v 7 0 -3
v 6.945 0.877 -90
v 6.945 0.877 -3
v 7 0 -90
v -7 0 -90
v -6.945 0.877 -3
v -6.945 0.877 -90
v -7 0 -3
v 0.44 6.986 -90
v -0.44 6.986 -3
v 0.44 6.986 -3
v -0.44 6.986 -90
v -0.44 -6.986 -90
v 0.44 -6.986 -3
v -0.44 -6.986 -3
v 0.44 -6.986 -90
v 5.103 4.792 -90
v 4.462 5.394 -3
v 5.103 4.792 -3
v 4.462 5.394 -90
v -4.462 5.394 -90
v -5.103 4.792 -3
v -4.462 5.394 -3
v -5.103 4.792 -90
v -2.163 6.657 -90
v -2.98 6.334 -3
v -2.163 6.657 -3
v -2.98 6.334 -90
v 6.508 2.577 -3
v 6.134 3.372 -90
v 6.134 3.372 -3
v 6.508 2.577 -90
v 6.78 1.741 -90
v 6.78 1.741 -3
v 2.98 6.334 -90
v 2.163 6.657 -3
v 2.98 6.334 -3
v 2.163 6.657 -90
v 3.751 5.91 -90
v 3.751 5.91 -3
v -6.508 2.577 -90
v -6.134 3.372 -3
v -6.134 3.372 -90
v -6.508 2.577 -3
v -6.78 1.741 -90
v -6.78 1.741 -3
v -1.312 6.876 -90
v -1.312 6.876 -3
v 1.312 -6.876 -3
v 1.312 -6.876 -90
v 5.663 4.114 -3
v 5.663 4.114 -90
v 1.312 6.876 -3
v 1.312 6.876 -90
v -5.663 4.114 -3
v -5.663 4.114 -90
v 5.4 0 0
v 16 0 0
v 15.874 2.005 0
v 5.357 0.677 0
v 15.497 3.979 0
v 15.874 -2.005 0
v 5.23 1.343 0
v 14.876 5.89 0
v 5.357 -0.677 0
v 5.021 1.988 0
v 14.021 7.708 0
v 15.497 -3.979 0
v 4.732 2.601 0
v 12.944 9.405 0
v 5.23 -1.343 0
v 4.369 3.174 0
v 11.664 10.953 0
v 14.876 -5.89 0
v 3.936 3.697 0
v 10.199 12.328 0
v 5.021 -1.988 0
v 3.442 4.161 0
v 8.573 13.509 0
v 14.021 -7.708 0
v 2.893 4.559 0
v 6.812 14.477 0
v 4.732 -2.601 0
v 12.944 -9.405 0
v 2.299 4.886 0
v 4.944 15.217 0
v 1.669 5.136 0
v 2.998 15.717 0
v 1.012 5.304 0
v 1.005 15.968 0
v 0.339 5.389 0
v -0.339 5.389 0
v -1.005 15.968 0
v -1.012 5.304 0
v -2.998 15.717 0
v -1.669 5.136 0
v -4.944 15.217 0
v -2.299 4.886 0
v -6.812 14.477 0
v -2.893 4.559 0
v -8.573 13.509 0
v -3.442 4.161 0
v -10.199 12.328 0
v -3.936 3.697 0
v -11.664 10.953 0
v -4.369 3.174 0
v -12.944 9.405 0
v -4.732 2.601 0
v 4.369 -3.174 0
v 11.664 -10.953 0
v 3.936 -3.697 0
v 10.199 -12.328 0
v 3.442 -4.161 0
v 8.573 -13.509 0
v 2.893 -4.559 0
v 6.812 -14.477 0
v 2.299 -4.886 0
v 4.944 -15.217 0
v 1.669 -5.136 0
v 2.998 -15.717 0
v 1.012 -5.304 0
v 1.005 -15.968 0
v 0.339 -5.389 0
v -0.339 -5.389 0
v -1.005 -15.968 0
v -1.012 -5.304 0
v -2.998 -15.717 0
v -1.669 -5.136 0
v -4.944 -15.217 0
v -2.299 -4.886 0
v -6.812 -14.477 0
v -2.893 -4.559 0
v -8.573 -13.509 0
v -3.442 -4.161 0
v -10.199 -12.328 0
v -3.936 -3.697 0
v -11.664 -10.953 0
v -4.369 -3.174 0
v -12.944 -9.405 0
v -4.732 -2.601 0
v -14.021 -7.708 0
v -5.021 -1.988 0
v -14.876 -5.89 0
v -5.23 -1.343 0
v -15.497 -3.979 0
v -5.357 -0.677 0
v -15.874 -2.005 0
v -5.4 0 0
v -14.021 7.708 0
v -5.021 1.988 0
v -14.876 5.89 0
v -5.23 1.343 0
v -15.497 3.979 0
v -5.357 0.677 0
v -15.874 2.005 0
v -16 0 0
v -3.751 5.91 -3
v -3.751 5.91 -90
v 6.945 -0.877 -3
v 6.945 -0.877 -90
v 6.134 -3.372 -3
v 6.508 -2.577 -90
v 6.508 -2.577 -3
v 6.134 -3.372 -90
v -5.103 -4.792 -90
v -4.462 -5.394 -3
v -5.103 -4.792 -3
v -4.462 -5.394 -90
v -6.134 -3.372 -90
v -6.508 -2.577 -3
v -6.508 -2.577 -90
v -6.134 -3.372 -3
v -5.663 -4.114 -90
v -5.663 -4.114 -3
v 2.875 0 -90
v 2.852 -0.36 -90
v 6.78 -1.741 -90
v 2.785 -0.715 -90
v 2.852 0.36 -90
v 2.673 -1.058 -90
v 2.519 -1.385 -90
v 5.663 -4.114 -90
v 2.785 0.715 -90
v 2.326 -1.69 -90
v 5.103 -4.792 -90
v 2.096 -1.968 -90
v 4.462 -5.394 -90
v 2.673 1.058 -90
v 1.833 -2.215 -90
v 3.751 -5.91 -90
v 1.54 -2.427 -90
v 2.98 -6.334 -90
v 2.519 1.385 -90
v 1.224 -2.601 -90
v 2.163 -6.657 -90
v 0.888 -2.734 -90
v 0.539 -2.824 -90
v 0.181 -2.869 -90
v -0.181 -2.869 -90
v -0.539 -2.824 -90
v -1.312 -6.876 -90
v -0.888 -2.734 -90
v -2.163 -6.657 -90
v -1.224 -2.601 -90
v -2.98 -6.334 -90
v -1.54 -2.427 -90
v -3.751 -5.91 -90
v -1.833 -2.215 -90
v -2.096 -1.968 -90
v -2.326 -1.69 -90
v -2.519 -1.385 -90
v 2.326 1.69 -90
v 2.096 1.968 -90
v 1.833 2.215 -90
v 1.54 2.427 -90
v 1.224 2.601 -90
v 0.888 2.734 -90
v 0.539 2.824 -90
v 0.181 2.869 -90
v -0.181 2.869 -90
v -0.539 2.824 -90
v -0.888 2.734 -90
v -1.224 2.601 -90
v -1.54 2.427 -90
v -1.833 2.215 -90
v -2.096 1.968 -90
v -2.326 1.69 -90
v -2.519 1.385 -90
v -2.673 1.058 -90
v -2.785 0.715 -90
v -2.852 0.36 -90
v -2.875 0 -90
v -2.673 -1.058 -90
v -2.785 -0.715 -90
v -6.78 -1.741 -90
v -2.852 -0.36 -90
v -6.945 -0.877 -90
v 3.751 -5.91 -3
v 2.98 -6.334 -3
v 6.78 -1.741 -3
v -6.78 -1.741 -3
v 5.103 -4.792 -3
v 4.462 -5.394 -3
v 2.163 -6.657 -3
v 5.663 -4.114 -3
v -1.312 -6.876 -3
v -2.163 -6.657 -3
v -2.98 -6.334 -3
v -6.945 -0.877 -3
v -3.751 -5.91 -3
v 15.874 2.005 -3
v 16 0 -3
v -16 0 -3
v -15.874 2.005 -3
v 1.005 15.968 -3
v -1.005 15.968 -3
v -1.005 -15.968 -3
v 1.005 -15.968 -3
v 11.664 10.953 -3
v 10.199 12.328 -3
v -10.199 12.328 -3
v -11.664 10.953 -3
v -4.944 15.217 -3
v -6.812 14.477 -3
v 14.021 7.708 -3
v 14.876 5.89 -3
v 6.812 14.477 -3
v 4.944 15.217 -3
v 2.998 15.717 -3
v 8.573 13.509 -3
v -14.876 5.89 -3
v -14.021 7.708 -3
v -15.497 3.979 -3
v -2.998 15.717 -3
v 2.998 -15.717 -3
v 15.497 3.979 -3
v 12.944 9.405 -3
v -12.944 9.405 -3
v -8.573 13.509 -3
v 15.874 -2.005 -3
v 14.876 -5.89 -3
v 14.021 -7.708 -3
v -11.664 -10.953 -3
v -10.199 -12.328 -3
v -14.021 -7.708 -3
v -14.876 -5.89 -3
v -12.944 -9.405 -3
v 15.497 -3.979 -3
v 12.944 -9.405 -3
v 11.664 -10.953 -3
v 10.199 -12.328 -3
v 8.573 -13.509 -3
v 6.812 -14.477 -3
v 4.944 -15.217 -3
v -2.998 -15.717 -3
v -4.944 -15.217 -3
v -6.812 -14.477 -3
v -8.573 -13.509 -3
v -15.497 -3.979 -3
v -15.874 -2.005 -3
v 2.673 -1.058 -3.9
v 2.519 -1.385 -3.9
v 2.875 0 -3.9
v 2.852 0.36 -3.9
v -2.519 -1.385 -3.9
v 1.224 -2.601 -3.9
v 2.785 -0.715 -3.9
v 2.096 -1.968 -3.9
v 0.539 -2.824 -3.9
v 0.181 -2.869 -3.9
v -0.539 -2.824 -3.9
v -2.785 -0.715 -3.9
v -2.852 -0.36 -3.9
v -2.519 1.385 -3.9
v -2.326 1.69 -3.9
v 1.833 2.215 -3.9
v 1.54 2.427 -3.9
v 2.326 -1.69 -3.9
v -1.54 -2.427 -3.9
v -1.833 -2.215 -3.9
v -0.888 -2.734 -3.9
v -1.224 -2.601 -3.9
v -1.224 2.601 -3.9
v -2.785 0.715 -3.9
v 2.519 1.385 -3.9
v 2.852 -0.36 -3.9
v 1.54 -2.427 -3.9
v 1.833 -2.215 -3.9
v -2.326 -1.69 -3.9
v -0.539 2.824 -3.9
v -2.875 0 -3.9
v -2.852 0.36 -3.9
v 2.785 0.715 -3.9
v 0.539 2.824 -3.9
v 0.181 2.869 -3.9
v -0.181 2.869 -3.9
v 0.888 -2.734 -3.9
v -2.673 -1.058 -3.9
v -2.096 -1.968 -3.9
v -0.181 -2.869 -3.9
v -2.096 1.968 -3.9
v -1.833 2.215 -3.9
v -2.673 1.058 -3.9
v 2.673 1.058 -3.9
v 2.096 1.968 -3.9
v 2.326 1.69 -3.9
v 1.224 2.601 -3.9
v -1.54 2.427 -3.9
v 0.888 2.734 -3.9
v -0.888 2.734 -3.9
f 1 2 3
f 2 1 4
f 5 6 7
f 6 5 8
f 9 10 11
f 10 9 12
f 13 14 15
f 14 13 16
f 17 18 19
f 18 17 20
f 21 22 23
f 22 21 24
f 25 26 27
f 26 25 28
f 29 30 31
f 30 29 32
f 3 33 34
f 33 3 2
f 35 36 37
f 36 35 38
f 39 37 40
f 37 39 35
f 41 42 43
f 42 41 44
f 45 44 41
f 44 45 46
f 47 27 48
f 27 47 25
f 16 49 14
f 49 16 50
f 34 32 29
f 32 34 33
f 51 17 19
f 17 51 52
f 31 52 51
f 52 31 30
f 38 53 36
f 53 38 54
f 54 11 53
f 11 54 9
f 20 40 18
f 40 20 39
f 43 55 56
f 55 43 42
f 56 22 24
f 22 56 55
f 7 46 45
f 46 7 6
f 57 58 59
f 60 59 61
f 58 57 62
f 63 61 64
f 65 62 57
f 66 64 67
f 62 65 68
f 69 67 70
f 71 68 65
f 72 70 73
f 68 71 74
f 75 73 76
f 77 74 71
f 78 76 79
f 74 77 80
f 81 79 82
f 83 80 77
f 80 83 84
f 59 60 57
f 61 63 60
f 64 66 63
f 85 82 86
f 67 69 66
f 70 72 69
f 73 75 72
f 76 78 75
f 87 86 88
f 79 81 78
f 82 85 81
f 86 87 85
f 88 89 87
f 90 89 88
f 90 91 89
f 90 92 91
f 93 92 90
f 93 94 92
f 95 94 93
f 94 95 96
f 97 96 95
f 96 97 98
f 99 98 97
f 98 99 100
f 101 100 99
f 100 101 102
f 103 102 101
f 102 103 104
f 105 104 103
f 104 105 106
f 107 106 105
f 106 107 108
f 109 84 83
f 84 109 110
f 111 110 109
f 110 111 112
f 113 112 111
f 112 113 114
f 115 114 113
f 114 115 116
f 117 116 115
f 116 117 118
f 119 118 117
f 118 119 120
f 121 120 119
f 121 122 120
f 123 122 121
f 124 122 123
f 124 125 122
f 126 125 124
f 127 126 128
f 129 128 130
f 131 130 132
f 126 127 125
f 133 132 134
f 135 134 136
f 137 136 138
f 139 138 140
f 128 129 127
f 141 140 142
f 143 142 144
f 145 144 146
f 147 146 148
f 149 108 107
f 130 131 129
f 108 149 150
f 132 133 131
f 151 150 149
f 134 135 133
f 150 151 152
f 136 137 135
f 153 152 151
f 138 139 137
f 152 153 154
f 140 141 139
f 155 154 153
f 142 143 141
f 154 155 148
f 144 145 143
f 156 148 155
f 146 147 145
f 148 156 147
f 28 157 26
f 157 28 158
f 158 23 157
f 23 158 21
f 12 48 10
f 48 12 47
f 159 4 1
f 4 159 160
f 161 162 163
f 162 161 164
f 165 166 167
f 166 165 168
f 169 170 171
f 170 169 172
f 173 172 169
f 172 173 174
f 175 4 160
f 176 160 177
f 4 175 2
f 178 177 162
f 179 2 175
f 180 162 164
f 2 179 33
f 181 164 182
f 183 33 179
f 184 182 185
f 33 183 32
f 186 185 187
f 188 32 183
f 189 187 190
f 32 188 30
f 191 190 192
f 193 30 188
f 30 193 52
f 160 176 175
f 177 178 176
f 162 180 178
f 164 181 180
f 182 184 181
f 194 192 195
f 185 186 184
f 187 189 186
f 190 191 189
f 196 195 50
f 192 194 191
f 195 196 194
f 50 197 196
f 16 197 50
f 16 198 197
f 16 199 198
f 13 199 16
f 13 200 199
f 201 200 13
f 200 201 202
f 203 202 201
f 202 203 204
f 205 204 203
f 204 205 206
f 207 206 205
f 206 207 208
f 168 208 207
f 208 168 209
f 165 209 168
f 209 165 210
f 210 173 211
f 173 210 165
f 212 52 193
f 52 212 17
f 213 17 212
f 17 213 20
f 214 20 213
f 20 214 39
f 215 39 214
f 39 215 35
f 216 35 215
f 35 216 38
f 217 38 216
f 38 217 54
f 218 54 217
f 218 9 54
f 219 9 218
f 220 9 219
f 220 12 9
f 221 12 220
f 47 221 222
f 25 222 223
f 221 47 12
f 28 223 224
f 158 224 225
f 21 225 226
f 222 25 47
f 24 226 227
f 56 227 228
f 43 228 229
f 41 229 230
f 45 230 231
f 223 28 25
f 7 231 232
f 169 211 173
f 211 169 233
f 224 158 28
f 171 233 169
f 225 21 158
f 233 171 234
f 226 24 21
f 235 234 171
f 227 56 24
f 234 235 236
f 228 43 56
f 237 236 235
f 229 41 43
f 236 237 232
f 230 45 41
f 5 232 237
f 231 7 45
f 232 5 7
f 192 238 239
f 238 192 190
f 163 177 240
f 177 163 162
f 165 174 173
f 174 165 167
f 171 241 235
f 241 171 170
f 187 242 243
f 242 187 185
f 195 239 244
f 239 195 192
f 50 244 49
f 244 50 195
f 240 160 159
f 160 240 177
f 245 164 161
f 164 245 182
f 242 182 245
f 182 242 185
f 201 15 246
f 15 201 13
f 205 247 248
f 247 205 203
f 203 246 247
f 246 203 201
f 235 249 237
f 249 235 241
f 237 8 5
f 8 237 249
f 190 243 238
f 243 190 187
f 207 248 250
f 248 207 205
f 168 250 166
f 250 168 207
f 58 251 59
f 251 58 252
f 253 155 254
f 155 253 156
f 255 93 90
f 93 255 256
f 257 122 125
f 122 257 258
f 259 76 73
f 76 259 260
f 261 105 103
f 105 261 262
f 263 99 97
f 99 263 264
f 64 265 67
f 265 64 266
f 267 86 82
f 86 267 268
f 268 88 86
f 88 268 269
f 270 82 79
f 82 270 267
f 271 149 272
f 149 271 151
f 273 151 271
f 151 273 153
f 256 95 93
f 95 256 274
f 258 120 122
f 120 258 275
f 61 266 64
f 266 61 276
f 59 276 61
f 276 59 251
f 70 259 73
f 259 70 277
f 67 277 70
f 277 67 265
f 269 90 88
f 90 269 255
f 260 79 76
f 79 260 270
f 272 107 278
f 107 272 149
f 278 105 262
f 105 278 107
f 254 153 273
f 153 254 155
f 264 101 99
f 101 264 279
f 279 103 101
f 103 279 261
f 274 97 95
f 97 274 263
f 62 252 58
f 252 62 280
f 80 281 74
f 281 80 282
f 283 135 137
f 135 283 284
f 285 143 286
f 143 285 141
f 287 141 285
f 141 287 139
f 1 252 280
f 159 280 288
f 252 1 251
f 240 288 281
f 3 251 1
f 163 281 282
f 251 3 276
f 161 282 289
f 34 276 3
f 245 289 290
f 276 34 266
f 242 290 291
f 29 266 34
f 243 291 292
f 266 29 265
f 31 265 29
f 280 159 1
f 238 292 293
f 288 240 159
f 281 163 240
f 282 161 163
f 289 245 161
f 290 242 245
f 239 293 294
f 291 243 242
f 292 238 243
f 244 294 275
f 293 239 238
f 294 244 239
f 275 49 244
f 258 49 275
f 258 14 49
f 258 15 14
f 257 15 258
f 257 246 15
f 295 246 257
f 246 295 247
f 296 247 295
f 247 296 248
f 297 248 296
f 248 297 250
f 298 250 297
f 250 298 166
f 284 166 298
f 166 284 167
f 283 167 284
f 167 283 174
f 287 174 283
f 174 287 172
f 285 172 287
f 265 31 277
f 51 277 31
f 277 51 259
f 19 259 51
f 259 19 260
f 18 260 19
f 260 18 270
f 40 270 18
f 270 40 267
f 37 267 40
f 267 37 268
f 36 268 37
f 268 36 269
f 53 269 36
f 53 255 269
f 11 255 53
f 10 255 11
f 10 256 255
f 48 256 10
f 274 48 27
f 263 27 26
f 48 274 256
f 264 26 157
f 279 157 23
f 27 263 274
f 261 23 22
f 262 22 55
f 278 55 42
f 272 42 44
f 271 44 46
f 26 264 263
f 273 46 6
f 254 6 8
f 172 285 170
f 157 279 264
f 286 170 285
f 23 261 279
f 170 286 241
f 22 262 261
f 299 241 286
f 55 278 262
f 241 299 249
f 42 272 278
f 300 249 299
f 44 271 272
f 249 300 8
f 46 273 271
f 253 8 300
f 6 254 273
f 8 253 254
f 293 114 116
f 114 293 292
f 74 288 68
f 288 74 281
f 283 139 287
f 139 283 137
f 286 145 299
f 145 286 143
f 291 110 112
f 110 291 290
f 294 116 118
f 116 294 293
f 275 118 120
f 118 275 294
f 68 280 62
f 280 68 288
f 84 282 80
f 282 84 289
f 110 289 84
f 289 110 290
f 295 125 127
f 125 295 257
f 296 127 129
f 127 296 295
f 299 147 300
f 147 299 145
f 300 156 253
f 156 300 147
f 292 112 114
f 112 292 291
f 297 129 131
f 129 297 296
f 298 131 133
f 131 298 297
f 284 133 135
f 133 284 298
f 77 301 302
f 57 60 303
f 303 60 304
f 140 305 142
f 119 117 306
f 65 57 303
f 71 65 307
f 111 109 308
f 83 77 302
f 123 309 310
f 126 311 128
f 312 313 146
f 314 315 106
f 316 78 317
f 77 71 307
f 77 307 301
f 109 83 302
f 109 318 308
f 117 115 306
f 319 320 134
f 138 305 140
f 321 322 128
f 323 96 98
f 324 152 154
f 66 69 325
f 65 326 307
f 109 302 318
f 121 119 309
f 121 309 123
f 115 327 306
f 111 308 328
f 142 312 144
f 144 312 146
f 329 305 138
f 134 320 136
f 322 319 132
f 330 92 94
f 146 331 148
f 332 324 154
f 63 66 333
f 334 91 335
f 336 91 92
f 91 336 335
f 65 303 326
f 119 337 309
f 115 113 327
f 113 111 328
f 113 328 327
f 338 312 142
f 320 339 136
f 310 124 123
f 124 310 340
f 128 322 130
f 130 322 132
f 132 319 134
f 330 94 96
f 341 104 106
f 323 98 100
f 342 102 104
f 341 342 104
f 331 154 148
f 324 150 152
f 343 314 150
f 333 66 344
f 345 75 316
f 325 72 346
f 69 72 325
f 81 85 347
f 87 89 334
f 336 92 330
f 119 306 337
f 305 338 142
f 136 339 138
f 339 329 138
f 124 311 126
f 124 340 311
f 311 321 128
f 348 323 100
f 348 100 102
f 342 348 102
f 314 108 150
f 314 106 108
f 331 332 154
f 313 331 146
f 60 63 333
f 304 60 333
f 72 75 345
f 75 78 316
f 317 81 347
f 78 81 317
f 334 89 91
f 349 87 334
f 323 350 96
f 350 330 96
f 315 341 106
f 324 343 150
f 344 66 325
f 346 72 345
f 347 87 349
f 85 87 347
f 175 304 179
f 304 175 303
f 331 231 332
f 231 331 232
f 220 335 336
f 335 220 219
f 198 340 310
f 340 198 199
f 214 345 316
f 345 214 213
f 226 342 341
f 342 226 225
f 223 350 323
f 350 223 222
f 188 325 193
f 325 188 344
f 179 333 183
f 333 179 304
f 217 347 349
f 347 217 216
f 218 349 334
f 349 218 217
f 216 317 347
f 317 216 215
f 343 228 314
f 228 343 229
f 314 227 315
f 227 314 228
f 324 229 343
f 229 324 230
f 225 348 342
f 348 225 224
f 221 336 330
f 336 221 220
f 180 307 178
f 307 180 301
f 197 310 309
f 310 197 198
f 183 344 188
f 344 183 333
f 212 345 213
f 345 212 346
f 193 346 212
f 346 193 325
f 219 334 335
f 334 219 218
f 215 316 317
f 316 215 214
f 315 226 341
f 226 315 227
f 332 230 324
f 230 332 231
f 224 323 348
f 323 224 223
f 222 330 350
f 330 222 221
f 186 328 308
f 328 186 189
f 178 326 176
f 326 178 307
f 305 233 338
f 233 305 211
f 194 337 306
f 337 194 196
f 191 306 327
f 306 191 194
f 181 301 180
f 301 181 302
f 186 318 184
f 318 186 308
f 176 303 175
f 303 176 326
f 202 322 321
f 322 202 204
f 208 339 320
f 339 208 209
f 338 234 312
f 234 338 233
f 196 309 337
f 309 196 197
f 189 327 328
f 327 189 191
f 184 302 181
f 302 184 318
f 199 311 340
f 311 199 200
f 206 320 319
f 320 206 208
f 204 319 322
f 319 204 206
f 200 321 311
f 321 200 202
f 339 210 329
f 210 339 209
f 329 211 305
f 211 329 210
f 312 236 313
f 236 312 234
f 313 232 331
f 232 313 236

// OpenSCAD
$fn = 50;


difference() {
	union() {
		translate(v = [0, 0, -90.0000000000]) {
			cylinder(h = 90, r = 7.0000000000);
		}
		translate(v = [0, 0, -3.0000000000]) {
			cylinder(h = 3, r = 16.0000000000);
		}
	}
	union() {
		translate(v = [0, 0, 0]) {
			rotate(a = [0, 0, 0]) {
				difference() {
					union() {
						#translate(v = [0, 0, -90.0000000000]) {
							cylinder(h = 90, r = 2.6000000000);
						}
						#translate(v = [0, 0, -3.9000000000]) {
							cylinder(h = 3.9000000000, r = 7.0000000000, r1 = 2.8750000000, r2 = 5.4000000000);
						}
						#translate(v = [0, 0, -90.0000000000]) {
							cylinder(h = 90, r = 2.8750000000);
						}
						#translate(v = [0, 0, -90.0000000000]) {
							cylinder(h = 90, r = 2.6000000000);
						}
					}
					union();
				}
			}
		}
	}
}
